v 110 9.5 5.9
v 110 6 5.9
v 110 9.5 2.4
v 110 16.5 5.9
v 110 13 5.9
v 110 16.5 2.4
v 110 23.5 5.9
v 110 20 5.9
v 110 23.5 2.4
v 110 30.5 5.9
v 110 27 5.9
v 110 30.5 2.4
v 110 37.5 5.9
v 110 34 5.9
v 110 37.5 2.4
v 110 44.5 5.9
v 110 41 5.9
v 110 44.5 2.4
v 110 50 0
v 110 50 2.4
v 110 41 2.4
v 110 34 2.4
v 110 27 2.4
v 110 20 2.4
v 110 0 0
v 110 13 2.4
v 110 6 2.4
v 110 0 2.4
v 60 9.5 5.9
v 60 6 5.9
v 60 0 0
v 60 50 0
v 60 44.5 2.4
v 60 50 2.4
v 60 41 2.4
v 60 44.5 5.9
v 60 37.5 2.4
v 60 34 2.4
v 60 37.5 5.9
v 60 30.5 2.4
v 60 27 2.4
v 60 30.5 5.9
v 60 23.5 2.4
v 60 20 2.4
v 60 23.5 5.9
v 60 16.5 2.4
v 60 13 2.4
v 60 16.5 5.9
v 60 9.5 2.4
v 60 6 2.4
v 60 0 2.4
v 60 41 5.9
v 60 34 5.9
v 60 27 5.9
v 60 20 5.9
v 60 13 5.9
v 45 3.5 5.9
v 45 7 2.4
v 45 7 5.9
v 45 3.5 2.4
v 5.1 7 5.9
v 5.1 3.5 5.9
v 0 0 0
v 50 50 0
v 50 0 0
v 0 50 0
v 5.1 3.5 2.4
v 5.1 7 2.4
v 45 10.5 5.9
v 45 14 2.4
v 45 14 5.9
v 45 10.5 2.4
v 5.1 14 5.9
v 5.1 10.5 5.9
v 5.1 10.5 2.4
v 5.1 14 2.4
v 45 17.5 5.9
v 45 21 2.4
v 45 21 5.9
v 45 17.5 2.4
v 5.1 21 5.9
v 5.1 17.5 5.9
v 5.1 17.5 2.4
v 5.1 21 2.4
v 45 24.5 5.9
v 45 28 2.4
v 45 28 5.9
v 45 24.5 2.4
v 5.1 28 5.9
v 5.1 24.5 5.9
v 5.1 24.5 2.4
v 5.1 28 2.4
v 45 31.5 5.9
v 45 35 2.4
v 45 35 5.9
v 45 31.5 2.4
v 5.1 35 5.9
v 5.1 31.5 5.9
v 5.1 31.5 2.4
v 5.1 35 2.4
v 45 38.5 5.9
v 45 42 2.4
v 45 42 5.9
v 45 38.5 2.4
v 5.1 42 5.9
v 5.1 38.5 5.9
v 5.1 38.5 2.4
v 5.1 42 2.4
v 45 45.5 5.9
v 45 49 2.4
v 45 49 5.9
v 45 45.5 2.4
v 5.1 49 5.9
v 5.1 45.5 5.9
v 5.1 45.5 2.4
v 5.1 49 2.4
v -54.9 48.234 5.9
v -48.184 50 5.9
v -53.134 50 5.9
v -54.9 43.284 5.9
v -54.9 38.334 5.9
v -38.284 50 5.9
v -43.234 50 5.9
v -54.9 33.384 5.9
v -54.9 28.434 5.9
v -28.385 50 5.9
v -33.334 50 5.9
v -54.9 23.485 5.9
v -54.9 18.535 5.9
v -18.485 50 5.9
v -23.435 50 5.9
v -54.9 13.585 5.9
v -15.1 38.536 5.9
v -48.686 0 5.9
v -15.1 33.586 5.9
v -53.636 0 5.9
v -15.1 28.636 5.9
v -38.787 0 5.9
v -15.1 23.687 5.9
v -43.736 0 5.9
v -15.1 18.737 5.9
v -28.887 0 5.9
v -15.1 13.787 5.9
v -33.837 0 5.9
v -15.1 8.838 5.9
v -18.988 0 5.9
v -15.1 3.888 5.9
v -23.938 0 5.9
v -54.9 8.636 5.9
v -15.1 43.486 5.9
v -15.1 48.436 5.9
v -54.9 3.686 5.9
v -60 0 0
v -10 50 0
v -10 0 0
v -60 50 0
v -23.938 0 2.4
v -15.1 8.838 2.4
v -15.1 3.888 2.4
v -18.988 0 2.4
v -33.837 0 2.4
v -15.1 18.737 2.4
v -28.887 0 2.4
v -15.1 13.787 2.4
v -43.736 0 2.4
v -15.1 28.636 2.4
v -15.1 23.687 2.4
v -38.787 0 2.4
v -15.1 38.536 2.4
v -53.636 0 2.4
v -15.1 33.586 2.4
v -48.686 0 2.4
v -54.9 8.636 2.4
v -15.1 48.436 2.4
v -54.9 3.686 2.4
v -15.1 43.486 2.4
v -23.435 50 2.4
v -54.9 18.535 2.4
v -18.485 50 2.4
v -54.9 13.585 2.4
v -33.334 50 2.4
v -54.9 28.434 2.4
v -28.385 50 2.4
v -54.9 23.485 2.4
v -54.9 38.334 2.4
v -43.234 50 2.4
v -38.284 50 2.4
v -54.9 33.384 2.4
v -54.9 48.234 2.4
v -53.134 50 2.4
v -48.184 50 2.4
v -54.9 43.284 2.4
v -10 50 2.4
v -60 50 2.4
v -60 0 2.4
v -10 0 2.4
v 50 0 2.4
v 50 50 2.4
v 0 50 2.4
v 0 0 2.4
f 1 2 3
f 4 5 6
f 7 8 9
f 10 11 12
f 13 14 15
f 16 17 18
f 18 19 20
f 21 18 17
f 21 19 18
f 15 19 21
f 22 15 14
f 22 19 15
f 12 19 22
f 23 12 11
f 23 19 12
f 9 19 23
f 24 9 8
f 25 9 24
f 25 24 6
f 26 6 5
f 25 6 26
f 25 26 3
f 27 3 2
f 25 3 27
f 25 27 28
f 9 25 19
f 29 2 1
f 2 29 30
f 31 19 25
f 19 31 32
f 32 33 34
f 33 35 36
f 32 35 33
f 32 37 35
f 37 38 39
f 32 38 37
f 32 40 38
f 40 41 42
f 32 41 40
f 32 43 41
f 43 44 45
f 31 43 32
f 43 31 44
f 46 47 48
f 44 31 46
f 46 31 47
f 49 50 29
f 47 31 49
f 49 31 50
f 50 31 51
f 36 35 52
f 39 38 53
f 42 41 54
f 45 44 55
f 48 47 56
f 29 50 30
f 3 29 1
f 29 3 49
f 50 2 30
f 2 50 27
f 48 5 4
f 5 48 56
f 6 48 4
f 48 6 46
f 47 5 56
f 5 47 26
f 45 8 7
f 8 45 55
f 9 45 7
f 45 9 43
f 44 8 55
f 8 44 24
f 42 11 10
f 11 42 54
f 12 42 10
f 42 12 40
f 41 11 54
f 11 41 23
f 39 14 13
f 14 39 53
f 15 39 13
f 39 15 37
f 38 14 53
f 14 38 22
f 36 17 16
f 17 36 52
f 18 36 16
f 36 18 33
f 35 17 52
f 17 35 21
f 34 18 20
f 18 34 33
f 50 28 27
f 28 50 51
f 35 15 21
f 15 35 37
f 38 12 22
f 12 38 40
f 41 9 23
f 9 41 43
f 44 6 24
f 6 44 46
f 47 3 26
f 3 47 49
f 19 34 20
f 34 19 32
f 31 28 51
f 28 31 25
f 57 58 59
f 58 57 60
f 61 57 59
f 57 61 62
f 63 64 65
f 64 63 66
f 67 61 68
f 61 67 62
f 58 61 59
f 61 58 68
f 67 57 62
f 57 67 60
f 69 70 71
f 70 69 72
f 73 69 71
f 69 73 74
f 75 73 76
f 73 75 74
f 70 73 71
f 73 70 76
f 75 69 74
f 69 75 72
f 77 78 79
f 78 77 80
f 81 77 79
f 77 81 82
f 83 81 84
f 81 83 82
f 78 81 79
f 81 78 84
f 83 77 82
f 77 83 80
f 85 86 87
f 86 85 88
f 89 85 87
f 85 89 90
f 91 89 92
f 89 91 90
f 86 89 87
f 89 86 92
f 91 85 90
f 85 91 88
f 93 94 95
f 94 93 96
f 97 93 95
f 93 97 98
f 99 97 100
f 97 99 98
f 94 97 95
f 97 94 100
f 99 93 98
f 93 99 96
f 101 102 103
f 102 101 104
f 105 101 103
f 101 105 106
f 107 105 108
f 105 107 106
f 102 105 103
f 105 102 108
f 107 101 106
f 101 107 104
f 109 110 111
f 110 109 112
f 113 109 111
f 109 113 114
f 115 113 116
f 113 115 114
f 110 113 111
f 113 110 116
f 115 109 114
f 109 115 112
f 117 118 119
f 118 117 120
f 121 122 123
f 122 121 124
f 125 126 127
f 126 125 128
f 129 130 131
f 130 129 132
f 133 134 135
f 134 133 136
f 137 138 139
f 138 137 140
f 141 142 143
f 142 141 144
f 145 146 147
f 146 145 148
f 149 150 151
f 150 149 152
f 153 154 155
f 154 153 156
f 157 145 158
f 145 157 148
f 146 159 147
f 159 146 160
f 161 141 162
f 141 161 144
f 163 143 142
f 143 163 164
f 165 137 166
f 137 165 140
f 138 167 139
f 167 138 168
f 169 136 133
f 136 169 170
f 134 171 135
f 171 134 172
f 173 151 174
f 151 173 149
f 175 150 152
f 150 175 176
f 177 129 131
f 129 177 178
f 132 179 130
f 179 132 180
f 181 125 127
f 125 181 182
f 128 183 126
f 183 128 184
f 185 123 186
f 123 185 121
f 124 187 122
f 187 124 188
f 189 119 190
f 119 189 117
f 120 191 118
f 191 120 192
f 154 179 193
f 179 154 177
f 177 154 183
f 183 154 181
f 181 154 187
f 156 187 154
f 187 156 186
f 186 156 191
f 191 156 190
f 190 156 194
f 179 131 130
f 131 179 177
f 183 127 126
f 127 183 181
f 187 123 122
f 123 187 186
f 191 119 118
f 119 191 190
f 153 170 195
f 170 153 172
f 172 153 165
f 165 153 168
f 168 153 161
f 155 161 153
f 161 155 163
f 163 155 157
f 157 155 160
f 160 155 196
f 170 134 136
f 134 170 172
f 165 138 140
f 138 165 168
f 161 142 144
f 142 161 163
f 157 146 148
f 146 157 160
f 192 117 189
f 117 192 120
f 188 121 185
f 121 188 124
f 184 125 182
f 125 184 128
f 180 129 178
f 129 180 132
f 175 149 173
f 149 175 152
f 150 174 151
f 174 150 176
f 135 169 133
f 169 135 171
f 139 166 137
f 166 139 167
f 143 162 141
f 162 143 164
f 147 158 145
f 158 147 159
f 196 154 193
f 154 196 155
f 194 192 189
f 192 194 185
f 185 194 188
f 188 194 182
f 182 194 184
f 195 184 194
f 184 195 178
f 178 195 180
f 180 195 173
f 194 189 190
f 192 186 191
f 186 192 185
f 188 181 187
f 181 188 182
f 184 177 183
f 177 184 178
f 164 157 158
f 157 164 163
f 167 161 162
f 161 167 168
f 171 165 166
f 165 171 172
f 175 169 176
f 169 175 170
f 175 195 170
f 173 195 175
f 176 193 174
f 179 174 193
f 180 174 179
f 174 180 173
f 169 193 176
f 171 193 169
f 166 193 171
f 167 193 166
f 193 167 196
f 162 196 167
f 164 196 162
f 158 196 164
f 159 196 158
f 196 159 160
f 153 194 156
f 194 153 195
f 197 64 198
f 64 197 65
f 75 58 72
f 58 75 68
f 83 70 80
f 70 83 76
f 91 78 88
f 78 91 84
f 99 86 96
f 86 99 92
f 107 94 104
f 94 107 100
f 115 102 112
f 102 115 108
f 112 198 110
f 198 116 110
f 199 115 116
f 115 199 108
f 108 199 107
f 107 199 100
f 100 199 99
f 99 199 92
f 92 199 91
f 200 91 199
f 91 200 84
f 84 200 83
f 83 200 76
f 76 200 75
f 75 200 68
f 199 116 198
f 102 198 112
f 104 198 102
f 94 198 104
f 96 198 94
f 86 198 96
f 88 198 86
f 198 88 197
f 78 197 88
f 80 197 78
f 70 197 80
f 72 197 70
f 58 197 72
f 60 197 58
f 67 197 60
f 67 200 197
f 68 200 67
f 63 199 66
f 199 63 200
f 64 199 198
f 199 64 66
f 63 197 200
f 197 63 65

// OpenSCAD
//textures for the mice maze

plateX = 50;
plateY = 50;
plateZ = 2.4;

tol = 0.1;


grateX = plateX;
grateY = 3.5;
grateZ = 3.5;


module texture1(){
    for (i = [6:2*grateY: plateX-6]){
        translate([0, i, 0]){
            cube([grateX,grateY,plateZ+grateZ]);
        }//end translate
    }//end for 
    
    
    
    }
    
module texture2(){
    for (i = [grateY:2*grateY: plateY]){
        translate([5+tol, i, 0]){
            
            cube([grateX-10-tol,grateY,plateZ+grateZ]);
        }//end translate

    }//end for 
    
    
    
    }  
module texture3(){

difference(){

    intersection(){
    cube([plateX,plateY,plateZ+grateZ]);
        translate([0,-0,0]){
    rotate([0,0,45]){
        for (i = [-plateX:2*grateY: plateX]){
        translate([0, i, 0]){
            cube([grateX+50,grateY,plateZ+grateZ]);
        }//end translate
    }//end for 

    }//end rotate
}//end translate
}//end intersection

    translate([-tol,-tol,-tol]){
    cube([5+2*tol,plateY+2*tol,plateZ+grateZ+2*tol]);
    }//end translate
    translate([plateX-5-tol,-tol,-tol]){
    cube([5+2*tol,plateY+2*tol,plateZ+grateZ+2*tol]);
    }//end translate
}
}

translate([60,0,0]){
cube([plateX,plateY,plateZ]);    
texture1();
}


cube([plateX,plateY,plateZ]);    
    texture2();

translate([-60,0,0]){
cube([plateX,plateY,plateZ]);    
    texture3();
}
